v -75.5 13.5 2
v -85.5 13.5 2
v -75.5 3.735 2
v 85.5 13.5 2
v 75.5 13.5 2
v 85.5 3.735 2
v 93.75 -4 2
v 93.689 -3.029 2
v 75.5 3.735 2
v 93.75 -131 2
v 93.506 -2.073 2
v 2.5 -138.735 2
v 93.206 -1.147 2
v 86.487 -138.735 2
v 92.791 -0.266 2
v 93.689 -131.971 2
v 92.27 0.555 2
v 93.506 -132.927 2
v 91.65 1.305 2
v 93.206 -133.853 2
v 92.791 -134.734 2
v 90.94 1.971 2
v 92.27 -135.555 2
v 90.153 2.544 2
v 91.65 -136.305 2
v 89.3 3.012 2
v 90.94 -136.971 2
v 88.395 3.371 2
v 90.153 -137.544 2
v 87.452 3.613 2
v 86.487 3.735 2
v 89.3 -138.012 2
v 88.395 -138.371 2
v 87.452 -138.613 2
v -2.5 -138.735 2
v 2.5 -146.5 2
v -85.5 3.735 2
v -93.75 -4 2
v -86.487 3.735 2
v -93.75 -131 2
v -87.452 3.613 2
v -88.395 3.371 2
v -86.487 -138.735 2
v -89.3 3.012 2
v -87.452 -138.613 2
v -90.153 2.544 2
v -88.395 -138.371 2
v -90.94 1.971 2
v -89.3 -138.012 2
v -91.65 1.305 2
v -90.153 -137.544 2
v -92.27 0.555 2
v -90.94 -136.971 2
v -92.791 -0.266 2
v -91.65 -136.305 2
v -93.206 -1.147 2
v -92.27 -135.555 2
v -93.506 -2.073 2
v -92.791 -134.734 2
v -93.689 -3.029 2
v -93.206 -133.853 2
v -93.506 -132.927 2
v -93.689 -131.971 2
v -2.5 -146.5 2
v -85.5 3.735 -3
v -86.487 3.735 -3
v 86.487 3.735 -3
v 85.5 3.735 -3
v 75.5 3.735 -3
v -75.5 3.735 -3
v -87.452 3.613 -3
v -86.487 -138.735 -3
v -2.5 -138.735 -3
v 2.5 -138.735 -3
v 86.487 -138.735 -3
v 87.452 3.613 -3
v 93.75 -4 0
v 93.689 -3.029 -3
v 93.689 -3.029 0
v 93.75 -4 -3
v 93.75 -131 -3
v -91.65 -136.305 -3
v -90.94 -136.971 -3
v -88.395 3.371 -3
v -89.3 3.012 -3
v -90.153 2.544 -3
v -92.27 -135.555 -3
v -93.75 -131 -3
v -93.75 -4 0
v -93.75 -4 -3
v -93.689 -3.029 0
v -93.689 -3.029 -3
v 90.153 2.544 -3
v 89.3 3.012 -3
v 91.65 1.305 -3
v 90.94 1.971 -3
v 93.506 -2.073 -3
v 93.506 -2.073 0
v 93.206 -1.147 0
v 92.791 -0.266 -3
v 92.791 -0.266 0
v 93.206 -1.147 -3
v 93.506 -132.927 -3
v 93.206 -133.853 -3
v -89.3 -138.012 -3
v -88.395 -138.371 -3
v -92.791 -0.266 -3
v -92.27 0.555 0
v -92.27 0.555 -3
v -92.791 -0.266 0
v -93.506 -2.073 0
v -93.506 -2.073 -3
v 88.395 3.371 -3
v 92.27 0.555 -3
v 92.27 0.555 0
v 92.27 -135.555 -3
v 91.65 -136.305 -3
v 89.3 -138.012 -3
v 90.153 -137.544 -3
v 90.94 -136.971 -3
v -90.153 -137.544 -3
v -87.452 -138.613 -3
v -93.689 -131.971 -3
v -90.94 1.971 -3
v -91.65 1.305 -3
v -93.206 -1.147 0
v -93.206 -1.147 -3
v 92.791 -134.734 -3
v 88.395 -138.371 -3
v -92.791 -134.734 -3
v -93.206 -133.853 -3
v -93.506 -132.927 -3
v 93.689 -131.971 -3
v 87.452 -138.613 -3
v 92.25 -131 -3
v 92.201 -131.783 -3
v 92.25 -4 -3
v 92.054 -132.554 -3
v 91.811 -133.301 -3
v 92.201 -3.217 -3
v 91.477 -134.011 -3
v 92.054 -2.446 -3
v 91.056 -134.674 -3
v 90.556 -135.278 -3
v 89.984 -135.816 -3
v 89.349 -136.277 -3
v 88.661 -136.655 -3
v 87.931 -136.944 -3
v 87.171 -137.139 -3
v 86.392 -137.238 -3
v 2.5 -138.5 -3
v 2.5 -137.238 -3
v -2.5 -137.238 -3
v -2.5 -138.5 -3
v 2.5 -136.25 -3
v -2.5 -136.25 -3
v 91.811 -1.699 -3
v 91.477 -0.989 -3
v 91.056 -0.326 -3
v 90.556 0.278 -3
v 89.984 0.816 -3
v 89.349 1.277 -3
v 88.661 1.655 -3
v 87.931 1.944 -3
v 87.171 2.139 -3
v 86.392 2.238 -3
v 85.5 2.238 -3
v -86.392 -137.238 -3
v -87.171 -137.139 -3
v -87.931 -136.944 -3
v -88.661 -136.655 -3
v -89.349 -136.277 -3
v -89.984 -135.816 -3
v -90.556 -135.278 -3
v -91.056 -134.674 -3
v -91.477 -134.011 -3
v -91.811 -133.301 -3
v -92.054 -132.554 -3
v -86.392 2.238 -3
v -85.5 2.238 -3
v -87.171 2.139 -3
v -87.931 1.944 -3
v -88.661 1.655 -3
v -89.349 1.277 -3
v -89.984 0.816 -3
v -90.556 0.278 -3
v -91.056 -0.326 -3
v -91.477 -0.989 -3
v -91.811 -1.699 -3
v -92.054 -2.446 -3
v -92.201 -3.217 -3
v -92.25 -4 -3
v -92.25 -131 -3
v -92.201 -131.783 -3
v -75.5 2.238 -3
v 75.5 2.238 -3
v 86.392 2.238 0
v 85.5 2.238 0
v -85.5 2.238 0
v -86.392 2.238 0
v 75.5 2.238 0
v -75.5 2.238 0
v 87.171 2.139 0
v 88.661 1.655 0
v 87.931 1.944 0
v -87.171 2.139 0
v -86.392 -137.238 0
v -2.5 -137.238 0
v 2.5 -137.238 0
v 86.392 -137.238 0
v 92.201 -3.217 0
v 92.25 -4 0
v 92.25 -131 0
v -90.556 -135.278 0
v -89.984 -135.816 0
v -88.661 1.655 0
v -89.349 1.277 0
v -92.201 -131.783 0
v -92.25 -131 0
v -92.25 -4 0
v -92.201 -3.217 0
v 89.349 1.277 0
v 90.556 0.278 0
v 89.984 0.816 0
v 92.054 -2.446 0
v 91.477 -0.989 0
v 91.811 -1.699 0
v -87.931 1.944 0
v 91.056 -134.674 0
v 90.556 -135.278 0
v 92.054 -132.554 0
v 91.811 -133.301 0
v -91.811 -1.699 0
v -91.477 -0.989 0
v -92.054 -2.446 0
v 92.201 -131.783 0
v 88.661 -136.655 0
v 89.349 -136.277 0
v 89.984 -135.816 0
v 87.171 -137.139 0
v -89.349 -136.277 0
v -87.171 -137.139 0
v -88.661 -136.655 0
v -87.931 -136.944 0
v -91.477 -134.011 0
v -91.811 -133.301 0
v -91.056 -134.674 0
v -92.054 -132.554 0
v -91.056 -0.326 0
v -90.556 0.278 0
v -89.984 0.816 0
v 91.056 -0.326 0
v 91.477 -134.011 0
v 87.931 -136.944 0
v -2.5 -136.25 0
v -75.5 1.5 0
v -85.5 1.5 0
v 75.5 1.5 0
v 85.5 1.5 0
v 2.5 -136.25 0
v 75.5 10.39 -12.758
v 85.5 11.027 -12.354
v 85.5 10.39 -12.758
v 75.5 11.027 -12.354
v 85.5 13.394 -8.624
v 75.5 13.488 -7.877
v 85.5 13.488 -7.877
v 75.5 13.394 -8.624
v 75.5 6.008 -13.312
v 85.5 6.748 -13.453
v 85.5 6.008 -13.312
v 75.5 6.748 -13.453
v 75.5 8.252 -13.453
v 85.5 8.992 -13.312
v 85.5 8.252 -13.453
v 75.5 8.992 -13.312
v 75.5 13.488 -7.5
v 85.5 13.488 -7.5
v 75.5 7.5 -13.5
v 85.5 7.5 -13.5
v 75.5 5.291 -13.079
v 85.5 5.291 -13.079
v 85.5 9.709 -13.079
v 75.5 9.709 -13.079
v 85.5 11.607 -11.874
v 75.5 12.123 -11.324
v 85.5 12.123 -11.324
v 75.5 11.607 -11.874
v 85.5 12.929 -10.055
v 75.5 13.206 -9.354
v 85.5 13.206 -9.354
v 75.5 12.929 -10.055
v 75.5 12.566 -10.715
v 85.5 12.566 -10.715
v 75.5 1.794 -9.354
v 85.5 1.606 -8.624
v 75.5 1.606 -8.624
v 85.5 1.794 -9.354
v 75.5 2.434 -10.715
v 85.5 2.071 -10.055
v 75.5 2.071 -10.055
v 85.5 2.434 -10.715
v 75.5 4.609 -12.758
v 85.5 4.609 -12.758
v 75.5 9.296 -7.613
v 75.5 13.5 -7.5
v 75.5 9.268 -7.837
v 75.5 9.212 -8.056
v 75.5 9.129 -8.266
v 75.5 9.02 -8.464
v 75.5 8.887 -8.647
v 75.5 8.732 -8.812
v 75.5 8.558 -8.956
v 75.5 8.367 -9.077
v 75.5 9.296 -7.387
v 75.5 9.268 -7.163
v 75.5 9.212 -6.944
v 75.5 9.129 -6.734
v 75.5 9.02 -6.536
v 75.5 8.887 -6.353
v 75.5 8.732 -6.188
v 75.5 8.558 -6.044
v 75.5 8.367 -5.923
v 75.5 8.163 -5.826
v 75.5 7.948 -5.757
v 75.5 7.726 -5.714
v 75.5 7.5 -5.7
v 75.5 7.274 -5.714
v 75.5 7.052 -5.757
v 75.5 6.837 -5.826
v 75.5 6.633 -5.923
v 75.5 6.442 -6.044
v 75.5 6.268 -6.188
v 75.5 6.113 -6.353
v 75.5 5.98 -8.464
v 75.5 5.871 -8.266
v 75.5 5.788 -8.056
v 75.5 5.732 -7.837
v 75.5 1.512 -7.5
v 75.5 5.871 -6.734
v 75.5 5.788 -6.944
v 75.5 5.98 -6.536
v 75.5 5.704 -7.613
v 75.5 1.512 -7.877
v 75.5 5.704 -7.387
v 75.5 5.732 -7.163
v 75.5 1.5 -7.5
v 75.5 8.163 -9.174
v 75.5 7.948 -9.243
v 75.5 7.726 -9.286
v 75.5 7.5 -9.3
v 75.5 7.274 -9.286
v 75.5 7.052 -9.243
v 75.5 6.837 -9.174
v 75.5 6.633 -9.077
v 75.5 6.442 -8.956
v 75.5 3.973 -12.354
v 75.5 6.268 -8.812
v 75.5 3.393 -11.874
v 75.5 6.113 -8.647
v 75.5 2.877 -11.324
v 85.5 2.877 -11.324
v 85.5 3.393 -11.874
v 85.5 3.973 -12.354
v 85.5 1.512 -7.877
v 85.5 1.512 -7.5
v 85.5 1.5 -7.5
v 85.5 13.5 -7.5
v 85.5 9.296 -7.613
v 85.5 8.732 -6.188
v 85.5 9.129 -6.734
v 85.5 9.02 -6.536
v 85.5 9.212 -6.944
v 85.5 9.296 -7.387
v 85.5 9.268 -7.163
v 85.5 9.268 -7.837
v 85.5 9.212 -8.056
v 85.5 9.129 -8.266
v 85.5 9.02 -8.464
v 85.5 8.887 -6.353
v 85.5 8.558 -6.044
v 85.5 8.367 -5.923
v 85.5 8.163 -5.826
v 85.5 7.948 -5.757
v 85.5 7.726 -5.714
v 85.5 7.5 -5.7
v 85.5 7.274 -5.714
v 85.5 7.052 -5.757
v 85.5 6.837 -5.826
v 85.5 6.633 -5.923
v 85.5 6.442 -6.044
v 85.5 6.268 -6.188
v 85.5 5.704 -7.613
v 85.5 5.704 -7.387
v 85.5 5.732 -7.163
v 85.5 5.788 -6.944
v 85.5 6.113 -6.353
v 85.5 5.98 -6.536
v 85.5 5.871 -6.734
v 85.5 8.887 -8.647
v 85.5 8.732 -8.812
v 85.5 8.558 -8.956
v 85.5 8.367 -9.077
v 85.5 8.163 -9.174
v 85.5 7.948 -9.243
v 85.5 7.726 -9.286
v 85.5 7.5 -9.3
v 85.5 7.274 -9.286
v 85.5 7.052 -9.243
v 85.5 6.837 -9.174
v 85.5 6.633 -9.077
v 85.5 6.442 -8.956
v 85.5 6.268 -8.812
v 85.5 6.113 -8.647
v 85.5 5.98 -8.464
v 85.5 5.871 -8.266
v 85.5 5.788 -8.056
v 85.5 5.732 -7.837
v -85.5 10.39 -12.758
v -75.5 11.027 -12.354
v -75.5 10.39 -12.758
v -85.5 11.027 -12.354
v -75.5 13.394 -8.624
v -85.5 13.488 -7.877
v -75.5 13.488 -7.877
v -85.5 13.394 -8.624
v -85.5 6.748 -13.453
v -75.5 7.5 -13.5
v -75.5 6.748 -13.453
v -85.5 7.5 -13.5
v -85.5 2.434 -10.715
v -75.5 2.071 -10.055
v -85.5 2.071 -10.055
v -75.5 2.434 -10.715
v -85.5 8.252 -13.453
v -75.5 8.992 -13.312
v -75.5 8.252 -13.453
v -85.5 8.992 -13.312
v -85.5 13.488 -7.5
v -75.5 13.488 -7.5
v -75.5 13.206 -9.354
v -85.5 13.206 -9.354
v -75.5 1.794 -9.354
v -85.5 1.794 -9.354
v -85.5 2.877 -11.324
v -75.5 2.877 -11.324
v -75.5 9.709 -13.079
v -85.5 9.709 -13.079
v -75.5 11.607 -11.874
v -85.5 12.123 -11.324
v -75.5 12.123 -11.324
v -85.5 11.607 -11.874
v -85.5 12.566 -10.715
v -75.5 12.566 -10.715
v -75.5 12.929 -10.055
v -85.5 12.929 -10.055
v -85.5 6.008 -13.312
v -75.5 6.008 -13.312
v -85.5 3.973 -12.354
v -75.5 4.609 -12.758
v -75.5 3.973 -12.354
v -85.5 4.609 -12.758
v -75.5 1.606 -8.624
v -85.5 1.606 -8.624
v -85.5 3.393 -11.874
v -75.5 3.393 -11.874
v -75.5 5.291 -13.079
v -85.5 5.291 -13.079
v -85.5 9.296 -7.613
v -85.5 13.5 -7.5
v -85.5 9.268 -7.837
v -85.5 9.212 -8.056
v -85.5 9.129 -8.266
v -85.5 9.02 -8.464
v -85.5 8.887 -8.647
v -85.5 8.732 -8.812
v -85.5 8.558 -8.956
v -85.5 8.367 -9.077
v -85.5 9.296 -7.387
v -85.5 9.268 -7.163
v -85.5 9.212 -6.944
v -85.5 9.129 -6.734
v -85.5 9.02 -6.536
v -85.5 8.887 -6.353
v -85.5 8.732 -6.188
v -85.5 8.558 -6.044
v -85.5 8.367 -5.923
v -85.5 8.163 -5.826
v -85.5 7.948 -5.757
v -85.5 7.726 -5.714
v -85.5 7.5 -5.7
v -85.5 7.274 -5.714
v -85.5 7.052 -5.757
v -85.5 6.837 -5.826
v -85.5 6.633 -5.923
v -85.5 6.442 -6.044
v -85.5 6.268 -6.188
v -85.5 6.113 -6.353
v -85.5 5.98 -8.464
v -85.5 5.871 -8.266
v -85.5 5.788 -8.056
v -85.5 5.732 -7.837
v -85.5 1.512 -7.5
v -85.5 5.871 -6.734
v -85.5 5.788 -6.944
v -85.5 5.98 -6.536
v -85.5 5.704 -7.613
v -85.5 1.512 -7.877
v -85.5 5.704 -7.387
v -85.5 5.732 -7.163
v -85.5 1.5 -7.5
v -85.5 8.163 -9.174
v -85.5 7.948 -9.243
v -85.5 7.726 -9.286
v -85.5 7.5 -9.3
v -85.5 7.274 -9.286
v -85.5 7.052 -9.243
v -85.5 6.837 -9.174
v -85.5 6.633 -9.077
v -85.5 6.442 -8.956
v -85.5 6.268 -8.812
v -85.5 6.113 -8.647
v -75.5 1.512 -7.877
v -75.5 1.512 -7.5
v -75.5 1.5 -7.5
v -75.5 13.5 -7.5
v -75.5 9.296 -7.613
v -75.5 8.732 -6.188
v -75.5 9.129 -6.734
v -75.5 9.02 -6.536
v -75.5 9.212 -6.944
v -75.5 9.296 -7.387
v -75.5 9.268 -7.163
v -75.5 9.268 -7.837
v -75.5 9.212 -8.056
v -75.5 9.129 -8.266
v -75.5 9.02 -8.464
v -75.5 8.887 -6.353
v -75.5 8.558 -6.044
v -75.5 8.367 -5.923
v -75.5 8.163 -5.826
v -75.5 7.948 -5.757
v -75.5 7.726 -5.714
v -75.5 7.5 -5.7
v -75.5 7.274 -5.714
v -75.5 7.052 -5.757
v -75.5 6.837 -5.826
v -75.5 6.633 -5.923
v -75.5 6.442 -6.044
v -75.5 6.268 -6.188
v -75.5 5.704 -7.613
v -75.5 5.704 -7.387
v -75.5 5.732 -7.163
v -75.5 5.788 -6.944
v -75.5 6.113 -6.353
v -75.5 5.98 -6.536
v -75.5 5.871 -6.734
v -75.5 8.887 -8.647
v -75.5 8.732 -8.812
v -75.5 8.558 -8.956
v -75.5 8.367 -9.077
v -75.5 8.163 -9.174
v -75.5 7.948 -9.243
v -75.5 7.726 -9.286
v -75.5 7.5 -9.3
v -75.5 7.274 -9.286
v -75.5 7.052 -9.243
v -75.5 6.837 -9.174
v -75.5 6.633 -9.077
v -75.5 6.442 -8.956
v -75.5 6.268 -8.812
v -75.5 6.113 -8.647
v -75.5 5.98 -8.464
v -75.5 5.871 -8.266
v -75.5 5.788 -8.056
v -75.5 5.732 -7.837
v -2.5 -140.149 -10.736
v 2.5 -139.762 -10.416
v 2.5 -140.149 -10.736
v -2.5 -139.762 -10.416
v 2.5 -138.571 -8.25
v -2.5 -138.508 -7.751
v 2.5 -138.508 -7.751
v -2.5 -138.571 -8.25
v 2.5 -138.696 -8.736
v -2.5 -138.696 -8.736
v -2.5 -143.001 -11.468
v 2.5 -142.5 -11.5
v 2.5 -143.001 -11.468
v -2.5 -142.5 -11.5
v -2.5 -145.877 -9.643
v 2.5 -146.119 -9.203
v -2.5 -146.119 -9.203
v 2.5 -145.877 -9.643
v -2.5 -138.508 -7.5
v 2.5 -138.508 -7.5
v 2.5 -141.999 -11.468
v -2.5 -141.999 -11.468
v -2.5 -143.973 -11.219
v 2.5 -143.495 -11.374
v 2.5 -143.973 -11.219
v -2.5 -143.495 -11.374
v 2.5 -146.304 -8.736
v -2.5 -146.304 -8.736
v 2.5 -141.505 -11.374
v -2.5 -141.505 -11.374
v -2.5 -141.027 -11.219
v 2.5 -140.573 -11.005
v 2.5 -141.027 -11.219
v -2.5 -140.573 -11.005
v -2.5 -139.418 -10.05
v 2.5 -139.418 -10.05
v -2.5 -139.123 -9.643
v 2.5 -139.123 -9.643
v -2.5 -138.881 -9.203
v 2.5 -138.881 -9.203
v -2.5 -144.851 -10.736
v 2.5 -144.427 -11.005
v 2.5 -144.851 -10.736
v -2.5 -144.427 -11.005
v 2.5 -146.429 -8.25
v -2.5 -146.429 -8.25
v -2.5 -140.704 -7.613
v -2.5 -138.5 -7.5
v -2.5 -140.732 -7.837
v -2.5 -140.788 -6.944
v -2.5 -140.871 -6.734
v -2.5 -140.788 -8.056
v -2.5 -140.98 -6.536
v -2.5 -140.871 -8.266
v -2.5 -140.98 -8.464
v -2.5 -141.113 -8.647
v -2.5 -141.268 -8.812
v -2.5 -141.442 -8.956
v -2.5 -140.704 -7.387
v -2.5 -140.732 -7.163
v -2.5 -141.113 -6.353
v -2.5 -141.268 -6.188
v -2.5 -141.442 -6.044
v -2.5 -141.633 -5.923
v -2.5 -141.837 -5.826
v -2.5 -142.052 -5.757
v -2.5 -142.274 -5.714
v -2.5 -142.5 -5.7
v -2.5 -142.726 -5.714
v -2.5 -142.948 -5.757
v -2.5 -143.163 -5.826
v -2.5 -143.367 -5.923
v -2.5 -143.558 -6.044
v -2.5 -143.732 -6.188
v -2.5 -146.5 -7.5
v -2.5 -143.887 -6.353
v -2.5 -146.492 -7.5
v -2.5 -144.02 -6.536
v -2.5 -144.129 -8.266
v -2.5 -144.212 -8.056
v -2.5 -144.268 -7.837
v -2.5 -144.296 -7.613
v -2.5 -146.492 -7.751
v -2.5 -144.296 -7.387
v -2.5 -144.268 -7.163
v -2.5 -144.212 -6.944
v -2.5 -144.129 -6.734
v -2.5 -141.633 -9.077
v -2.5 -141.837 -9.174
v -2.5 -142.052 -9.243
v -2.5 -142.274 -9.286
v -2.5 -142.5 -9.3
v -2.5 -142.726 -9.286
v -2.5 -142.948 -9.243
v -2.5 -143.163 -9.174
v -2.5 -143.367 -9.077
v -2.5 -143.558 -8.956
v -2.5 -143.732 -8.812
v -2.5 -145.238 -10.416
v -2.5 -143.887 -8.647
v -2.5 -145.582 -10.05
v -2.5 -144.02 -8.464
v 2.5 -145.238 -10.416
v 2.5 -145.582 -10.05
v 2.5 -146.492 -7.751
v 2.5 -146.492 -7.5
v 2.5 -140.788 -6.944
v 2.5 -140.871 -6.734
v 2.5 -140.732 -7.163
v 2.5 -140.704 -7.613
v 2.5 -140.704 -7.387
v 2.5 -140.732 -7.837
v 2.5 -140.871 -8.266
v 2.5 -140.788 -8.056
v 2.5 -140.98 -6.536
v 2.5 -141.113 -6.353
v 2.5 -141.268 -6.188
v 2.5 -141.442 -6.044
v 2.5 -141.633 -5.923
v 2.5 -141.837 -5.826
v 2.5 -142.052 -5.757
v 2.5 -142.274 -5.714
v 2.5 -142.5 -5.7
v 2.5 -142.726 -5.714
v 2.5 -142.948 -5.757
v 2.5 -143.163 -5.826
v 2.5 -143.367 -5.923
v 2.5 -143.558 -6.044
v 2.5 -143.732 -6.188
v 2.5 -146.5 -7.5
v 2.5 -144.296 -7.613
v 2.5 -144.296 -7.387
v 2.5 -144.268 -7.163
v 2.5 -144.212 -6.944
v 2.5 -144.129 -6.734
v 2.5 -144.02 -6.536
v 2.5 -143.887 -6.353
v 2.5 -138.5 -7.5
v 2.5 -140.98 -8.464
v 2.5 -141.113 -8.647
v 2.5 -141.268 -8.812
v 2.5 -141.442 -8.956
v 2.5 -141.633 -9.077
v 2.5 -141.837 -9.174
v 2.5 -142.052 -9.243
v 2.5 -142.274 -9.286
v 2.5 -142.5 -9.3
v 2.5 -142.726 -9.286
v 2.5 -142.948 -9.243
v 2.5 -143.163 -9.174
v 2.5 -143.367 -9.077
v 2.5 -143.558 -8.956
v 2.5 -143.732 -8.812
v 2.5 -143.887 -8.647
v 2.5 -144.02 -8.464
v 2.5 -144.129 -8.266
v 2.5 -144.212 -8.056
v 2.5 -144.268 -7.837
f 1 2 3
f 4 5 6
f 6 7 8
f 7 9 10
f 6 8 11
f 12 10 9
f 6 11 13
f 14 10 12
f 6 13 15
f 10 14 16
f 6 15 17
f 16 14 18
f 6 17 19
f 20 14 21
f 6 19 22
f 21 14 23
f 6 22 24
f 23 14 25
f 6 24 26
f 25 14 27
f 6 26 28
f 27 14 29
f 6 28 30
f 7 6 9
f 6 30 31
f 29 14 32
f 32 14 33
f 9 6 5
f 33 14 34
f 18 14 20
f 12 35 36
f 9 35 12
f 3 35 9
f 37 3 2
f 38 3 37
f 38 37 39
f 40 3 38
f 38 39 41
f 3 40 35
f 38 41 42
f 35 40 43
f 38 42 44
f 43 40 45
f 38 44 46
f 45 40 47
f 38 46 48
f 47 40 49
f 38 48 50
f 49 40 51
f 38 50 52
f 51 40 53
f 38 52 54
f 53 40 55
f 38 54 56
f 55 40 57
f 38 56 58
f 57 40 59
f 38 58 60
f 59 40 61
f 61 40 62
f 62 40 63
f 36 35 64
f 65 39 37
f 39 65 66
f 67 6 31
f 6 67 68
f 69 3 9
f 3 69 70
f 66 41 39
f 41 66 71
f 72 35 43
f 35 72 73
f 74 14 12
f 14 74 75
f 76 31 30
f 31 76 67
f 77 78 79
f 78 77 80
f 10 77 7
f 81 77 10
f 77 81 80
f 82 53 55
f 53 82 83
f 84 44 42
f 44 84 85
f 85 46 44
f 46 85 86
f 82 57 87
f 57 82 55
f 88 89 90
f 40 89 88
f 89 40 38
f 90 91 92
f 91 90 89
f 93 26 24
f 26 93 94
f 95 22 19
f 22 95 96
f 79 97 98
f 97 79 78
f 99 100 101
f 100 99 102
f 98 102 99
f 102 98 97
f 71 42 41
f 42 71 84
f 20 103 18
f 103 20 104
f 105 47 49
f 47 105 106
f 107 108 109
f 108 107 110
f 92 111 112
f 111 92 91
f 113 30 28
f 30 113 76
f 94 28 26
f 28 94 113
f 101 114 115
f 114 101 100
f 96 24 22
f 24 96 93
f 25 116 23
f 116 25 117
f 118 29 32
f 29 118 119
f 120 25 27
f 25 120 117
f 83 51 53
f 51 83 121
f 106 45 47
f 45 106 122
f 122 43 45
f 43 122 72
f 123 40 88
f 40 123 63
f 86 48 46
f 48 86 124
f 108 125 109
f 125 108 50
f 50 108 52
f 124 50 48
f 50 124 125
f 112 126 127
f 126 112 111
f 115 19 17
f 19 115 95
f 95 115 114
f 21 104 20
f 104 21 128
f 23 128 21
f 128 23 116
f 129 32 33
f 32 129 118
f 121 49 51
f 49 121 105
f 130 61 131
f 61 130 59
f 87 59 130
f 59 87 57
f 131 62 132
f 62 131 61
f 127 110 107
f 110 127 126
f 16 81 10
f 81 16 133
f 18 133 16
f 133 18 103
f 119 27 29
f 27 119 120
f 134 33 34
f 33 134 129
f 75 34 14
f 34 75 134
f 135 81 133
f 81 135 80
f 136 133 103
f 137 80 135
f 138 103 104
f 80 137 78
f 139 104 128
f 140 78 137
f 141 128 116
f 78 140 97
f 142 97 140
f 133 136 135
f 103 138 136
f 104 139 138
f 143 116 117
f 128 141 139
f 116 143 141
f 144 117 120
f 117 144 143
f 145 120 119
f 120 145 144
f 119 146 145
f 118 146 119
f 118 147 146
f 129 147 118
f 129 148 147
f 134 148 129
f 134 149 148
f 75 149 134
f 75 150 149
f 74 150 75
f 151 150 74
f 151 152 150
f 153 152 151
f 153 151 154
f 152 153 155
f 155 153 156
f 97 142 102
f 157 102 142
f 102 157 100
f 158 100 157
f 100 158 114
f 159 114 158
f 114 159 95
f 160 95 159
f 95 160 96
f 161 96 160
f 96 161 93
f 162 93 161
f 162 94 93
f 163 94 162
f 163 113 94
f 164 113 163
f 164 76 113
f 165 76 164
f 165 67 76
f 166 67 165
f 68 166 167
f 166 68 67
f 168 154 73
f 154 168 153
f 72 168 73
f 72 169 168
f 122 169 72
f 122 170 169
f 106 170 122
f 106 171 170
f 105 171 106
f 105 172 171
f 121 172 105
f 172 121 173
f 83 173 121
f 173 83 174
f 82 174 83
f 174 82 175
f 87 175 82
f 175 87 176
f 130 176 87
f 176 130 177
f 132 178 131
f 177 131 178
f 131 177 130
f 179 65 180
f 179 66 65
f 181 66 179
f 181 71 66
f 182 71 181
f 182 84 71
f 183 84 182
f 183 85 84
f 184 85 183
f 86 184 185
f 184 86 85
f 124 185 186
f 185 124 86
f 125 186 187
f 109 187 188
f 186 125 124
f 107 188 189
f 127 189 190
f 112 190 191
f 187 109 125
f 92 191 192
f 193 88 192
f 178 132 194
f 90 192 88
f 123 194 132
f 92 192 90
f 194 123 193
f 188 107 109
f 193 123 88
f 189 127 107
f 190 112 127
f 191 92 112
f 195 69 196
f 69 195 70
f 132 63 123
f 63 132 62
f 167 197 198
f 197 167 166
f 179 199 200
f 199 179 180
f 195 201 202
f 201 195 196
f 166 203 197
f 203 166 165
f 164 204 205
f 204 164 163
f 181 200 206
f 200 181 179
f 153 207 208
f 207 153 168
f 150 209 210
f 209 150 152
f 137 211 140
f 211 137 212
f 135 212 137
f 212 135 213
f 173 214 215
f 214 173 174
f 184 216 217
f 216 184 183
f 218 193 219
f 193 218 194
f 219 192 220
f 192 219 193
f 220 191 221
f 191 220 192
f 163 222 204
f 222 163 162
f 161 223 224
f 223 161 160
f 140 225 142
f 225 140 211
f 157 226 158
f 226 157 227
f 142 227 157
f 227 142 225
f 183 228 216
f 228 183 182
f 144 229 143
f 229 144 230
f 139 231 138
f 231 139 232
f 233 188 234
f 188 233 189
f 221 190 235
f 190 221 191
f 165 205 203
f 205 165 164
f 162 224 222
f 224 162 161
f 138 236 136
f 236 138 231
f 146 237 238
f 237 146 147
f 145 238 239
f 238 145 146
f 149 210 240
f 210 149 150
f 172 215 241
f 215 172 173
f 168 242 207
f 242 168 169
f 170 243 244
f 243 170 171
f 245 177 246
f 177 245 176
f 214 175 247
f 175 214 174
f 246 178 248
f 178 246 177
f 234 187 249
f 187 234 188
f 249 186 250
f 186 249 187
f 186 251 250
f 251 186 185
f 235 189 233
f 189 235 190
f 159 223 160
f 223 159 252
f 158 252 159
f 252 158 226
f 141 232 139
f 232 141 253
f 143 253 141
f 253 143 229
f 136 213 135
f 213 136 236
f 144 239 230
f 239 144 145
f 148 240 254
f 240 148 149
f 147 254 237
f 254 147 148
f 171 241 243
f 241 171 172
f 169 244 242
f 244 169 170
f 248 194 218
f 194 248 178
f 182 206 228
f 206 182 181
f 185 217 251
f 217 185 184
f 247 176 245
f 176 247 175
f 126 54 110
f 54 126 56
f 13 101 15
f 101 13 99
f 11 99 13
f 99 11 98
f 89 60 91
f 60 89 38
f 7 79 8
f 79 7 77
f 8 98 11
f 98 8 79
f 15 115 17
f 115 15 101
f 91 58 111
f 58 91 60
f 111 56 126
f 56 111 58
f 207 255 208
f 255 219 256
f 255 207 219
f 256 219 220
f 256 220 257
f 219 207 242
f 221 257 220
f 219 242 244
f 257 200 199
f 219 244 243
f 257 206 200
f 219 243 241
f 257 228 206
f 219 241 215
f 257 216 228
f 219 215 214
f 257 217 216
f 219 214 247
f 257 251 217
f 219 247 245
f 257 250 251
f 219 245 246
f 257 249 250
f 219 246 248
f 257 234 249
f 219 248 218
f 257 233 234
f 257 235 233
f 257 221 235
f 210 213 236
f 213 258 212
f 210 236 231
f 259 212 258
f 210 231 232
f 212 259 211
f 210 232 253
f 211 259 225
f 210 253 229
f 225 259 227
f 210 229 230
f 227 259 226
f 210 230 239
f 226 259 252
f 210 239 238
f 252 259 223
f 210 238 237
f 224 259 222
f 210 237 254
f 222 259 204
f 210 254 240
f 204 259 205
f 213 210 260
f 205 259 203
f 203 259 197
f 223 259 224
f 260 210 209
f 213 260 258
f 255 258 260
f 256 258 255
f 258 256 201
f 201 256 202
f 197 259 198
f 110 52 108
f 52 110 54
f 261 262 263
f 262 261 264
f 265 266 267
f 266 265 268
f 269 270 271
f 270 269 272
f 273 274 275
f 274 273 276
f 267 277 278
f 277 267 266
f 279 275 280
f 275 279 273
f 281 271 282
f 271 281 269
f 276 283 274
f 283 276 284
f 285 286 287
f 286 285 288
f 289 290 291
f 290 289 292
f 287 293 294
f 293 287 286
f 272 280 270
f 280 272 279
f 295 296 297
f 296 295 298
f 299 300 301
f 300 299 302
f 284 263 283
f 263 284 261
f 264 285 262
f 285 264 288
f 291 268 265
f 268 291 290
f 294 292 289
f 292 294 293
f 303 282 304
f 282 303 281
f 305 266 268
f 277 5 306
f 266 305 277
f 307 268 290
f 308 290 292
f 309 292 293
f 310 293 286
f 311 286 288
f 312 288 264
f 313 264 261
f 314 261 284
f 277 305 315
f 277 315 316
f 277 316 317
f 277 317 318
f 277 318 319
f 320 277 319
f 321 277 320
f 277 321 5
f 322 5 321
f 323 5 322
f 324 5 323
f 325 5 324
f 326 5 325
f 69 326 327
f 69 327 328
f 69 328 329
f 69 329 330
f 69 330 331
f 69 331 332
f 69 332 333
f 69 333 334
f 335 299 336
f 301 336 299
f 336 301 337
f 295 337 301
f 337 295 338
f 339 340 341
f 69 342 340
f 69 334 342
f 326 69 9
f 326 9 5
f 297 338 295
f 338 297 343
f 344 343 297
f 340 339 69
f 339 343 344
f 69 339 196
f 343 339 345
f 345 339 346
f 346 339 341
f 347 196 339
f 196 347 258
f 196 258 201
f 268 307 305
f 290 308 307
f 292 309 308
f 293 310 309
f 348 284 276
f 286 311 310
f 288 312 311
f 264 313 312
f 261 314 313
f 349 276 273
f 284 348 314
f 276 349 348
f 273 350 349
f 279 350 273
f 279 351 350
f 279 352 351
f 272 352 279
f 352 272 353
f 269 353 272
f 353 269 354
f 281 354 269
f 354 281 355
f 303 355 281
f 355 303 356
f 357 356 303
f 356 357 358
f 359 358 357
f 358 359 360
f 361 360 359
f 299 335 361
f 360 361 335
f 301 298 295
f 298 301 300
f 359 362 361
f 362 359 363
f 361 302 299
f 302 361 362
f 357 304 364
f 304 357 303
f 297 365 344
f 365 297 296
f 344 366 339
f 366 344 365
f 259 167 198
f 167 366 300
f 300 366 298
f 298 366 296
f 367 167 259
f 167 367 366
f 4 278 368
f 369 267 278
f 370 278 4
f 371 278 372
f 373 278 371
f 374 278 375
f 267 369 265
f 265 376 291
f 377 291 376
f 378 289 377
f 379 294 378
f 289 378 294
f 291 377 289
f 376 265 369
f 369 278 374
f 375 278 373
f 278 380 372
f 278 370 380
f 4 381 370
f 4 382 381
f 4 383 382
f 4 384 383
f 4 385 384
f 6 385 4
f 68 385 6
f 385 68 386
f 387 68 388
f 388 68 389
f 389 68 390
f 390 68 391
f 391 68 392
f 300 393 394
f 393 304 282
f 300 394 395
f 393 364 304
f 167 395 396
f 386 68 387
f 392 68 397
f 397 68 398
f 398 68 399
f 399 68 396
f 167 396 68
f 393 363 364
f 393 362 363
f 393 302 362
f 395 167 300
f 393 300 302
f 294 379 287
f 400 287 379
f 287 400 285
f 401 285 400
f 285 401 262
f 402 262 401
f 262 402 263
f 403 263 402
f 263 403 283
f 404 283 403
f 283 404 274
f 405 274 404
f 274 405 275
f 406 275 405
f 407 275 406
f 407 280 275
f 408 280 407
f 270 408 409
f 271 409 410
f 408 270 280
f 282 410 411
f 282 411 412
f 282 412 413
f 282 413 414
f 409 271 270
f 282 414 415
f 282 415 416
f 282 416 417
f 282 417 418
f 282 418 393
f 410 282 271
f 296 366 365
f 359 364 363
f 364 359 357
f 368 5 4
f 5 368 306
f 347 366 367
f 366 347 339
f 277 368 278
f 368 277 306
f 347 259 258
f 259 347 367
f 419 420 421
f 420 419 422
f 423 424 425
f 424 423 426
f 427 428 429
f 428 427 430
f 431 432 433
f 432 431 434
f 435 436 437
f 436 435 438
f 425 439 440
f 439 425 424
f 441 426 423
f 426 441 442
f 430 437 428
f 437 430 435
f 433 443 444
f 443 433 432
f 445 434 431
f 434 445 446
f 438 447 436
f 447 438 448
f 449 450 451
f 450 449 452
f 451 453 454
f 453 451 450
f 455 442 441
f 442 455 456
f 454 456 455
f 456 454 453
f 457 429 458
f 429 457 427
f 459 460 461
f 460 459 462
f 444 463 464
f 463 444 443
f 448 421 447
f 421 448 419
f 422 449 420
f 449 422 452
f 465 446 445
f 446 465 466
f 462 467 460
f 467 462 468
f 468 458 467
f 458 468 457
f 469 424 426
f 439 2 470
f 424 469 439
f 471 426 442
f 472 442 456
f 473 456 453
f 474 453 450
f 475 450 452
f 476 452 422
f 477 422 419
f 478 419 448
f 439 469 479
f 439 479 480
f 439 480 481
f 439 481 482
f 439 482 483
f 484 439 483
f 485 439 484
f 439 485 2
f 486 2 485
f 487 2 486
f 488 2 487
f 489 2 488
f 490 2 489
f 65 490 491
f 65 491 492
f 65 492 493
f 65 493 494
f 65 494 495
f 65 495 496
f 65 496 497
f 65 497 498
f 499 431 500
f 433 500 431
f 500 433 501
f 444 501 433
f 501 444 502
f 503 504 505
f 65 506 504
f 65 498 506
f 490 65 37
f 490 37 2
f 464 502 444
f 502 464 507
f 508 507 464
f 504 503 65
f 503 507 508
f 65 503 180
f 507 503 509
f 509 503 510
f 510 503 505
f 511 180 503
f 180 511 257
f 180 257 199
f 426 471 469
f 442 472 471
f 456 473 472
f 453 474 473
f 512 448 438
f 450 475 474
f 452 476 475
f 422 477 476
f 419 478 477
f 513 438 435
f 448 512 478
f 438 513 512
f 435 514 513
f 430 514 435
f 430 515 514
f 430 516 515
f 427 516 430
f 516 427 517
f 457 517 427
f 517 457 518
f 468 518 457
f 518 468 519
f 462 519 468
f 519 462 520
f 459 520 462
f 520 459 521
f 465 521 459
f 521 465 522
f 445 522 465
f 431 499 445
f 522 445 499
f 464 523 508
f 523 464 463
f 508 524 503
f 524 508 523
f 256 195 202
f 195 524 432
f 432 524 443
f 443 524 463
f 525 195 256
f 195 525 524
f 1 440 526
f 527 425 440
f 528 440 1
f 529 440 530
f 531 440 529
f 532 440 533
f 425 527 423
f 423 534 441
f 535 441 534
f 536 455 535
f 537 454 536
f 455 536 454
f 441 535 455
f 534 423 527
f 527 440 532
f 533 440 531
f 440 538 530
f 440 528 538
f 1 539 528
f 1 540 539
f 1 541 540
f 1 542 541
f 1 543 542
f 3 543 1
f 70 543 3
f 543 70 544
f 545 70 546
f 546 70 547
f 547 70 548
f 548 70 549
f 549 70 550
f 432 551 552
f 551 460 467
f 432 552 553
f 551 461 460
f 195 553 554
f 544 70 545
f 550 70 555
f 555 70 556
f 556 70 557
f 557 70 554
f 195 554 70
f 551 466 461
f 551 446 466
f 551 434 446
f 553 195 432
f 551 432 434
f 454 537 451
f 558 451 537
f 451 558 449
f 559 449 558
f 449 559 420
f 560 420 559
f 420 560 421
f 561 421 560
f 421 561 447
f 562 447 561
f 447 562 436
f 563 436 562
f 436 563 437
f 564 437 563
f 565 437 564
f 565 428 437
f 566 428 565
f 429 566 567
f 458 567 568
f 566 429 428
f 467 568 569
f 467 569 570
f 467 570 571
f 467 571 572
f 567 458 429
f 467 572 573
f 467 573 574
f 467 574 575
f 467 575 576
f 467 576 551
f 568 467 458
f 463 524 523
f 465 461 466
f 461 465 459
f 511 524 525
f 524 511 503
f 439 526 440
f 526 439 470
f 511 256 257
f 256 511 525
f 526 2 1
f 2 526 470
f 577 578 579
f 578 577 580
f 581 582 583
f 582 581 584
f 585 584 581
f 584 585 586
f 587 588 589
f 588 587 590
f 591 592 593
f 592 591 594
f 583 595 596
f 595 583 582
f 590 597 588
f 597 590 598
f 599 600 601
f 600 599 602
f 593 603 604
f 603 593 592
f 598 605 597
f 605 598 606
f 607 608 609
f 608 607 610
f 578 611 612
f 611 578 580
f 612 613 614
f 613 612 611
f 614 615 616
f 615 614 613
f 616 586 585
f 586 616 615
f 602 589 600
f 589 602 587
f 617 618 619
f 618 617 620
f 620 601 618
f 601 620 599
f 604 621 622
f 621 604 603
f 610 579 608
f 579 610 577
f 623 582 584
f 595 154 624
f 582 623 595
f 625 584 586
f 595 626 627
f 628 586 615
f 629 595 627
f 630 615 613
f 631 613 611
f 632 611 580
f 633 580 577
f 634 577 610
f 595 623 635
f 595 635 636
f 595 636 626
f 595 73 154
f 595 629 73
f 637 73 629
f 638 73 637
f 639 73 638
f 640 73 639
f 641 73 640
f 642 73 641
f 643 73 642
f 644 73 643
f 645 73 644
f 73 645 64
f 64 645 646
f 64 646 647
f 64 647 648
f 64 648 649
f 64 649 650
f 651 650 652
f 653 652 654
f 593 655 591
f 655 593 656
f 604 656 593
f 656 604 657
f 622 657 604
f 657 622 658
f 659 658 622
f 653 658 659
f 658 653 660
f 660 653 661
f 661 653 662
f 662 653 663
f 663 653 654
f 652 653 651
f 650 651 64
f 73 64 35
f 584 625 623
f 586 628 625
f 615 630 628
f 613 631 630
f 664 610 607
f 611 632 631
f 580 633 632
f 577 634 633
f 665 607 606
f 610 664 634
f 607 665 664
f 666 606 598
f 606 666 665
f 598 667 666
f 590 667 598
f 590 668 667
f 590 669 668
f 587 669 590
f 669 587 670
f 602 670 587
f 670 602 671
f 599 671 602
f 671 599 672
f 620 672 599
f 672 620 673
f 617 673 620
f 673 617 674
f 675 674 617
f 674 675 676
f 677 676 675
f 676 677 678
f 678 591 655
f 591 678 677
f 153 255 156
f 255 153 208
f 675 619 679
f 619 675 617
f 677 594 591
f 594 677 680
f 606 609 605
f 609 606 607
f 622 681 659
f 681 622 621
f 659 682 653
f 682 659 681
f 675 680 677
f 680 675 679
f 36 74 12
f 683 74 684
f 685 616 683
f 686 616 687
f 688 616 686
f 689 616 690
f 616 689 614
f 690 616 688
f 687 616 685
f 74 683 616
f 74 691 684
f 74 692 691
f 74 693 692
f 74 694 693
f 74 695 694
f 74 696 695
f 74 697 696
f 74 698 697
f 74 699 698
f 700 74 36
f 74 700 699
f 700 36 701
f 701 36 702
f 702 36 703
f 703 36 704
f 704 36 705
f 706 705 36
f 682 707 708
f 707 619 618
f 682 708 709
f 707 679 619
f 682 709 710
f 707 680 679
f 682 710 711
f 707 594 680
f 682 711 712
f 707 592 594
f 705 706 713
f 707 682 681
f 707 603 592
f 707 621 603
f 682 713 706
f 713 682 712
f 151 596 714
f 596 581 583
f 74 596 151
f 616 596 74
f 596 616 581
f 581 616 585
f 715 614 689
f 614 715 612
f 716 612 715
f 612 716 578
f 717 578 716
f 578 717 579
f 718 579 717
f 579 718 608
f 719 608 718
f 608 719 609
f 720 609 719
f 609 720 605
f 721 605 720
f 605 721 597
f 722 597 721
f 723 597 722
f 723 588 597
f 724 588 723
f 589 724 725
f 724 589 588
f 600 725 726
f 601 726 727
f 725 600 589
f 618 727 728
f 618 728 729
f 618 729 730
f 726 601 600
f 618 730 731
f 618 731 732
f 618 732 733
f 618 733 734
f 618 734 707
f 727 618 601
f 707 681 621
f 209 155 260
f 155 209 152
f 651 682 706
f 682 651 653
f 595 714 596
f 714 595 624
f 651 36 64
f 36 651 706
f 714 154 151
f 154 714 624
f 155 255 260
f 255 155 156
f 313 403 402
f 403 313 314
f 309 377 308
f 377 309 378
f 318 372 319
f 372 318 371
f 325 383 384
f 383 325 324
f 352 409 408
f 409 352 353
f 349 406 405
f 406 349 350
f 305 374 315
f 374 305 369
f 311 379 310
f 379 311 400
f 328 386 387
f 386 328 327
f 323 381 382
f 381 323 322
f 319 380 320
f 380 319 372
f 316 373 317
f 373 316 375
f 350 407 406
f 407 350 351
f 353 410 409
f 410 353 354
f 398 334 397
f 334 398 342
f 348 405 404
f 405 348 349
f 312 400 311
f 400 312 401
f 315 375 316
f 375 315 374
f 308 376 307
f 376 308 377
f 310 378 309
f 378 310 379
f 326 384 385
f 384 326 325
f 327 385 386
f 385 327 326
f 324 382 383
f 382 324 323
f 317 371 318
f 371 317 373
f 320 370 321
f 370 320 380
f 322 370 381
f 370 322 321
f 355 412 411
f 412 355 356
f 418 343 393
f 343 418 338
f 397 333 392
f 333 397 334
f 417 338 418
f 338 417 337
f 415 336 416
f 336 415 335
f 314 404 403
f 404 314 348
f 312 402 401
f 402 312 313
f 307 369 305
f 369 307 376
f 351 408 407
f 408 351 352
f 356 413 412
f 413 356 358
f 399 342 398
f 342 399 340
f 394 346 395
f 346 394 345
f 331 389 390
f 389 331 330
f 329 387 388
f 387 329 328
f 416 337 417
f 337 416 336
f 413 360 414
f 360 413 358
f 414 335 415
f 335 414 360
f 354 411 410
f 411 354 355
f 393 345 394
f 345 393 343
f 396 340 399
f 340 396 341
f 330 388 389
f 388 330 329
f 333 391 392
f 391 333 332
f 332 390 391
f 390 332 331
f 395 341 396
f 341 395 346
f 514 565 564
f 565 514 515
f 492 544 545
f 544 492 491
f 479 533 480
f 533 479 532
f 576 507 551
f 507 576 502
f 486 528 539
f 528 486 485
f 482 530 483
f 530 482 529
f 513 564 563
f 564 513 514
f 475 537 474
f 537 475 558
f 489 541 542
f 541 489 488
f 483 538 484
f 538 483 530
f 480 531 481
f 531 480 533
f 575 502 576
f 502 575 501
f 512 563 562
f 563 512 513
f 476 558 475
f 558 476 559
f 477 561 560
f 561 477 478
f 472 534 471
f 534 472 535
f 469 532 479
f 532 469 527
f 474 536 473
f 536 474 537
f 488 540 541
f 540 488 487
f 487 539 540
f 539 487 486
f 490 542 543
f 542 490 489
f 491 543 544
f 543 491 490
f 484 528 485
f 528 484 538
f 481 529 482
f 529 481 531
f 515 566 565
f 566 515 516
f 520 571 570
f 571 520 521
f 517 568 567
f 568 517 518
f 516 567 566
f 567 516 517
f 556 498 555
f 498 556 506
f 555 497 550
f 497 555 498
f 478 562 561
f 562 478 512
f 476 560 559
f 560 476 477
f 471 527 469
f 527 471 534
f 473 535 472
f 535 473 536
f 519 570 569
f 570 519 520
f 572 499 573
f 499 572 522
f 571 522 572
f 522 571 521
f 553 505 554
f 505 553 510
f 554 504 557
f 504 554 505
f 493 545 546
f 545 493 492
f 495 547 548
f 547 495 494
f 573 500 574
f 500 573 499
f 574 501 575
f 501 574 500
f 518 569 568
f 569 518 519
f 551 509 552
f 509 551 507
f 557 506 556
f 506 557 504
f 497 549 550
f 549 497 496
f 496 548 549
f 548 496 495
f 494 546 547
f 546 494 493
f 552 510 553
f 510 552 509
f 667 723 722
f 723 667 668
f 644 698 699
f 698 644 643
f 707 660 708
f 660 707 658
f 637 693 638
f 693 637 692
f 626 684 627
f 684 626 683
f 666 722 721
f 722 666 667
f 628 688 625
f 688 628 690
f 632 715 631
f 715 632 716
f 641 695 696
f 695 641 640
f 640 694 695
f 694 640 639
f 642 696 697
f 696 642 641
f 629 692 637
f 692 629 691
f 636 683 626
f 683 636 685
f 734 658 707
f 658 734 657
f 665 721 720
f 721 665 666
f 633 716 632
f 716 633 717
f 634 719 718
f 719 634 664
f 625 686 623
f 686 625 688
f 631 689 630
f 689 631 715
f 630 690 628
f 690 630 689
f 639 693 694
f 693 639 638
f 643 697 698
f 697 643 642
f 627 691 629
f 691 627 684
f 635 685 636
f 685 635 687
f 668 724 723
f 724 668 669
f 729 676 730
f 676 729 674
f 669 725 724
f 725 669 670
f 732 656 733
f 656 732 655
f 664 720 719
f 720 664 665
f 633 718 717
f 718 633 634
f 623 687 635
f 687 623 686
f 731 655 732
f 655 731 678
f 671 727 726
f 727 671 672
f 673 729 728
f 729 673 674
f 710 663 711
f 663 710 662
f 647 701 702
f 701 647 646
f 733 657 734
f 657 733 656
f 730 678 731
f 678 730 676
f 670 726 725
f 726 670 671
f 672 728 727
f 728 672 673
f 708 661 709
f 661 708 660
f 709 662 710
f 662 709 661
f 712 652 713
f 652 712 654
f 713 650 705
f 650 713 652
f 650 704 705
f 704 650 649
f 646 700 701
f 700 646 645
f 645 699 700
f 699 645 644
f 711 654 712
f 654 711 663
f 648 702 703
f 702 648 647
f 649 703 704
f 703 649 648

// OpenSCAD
$fn = 50;


difference() {
	union() {
		translate(v = [0, -67.5000000000, -3]) {
			rotate(a = [0, 0, 0]) {
				difference() {
					union() {
						hull() {
							translate(v = [-86.0000000000, 63.5000000000, 0]) {
								cylinder(h = 5, r = 7.7500000000);
							}
							translate(v = [86.0000000000, 63.5000000000, 0]) {
								cylinder(h = 5, r = 7.7500000000);
							}
							translate(v = [-86.0000000000, -63.5000000000, 0]) {
								cylinder(h = 5, r = 7.7500000000);
							}
							translate(v = [86.0000000000, -63.5000000000, 0]) {
								cylinder(h = 5, r = 7.7500000000);
							}
						}
					}
					union() {
						hull() {
							translate(v = [-86.0000000000, 63.5000000000, 0]) {
								cylinder(h = 5, r = 6.2500000000);
							}
							translate(v = [86.0000000000, 63.5000000000, 0]) {
								cylinder(h = 5, r = 6.2500000000);
							}
							translate(v = [-86.0000000000, -63.5000000000, 0]) {
								cylinder(h = 5, r = 6.2500000000);
							}
							translate(v = [86.0000000000, -63.5000000000, 0]) {
								cylinder(h = 5, r = 6.2500000000);
							}
						}
					}
				}
			}
		}
		translate(v = [0, -67.5000000000, 0]) {
			hull() {
				translate(v = [-86.0000000000, 63.5000000000, 0]) {
					cylinder(h = 2, r = 7.7500000000);
				}
				translate(v = [86.0000000000, 63.5000000000, 0]) {
					cylinder(h = 2, r = 7.7500000000);
				}
				translate(v = [-86.0000000000, -63.5000000000, 0]) {
					cylinder(h = 2, r = 7.7500000000);
				}
				translate(v = [86.0000000000, -63.5000000000, 0]) {
					cylinder(h = 2, r = 7.7500000000);
				}
			}
		}
		translate(v = [75.5000000000, 7.5000000000, -7.5000000000]) {
			rotate(a = [0, 90, 0]) {
				cylinder(h = 10, r = 6.0000000000);
			}
		}
		translate(v = [75.5000000000, 1.5000000000, -7.5000000000]) {
			cube(size = [10, 12, 7.5000000000]);
		}
		translate(v = [75.5000000000, -15.0000000000, 0.0000000000]) {
			cube(size = [10, 28.5000000000, 2]);
		}
		translate(v = [-85.5000000000, 7.5000000000, -7.5000000000]) {
			rotate(a = [0, 90, 0]) {
				cylinder(h = 10, r = 6.0000000000);
			}
		}
		translate(v = [-85.5000000000, 1.5000000000, -7.5000000000]) {
			cube(size = [10, 12, 7.5000000000]);
		}
		translate(v = [-85.5000000000, -15.0000000000, 0.0000000000]) {
			cube(size = [10, 28.5000000000, 2]);
		}
		translate(v = [-2.5000000000, -142.5000000000, -7.5000000000]) {
			rotate(a = [0, 90, 0]) {
				cylinder(h = 5, r = 4.0000000000);
			}
		}
		translate(v = [-2.5000000000, -146.5000000000, -7.5000000000]) {
			cube(size = [5, 8, 7.5000000000]);
		}
		translate(v = [-2.5000000000, -146.5000000000, -3.0000000000]) {
			cube(size = [5, 10.2500000000, 5]);
		}
	}
	union() {
		translate(v = [75.5000000000, 7.5000000000, -7.5000000000]) {
			rotate(a = [0, 90, 0]) {
				cylinder(h = 10, r = 1.8000000000);
			}
		}
		translate(v = [-85.5000000000, 7.5000000000, -7.5000000000]) {
			rotate(a = [0, 90, 0]) {
				cylinder(h = 10, r = 1.8000000000);
			}
		}
		translate(v = [-5.0000000000, -142.5000000000, -7.5000000000]) {
			rotate(a = [0, 90, 0]) {
				cylinder(h = 10, r = 1.8000000000);
			}
		}
	}
}
